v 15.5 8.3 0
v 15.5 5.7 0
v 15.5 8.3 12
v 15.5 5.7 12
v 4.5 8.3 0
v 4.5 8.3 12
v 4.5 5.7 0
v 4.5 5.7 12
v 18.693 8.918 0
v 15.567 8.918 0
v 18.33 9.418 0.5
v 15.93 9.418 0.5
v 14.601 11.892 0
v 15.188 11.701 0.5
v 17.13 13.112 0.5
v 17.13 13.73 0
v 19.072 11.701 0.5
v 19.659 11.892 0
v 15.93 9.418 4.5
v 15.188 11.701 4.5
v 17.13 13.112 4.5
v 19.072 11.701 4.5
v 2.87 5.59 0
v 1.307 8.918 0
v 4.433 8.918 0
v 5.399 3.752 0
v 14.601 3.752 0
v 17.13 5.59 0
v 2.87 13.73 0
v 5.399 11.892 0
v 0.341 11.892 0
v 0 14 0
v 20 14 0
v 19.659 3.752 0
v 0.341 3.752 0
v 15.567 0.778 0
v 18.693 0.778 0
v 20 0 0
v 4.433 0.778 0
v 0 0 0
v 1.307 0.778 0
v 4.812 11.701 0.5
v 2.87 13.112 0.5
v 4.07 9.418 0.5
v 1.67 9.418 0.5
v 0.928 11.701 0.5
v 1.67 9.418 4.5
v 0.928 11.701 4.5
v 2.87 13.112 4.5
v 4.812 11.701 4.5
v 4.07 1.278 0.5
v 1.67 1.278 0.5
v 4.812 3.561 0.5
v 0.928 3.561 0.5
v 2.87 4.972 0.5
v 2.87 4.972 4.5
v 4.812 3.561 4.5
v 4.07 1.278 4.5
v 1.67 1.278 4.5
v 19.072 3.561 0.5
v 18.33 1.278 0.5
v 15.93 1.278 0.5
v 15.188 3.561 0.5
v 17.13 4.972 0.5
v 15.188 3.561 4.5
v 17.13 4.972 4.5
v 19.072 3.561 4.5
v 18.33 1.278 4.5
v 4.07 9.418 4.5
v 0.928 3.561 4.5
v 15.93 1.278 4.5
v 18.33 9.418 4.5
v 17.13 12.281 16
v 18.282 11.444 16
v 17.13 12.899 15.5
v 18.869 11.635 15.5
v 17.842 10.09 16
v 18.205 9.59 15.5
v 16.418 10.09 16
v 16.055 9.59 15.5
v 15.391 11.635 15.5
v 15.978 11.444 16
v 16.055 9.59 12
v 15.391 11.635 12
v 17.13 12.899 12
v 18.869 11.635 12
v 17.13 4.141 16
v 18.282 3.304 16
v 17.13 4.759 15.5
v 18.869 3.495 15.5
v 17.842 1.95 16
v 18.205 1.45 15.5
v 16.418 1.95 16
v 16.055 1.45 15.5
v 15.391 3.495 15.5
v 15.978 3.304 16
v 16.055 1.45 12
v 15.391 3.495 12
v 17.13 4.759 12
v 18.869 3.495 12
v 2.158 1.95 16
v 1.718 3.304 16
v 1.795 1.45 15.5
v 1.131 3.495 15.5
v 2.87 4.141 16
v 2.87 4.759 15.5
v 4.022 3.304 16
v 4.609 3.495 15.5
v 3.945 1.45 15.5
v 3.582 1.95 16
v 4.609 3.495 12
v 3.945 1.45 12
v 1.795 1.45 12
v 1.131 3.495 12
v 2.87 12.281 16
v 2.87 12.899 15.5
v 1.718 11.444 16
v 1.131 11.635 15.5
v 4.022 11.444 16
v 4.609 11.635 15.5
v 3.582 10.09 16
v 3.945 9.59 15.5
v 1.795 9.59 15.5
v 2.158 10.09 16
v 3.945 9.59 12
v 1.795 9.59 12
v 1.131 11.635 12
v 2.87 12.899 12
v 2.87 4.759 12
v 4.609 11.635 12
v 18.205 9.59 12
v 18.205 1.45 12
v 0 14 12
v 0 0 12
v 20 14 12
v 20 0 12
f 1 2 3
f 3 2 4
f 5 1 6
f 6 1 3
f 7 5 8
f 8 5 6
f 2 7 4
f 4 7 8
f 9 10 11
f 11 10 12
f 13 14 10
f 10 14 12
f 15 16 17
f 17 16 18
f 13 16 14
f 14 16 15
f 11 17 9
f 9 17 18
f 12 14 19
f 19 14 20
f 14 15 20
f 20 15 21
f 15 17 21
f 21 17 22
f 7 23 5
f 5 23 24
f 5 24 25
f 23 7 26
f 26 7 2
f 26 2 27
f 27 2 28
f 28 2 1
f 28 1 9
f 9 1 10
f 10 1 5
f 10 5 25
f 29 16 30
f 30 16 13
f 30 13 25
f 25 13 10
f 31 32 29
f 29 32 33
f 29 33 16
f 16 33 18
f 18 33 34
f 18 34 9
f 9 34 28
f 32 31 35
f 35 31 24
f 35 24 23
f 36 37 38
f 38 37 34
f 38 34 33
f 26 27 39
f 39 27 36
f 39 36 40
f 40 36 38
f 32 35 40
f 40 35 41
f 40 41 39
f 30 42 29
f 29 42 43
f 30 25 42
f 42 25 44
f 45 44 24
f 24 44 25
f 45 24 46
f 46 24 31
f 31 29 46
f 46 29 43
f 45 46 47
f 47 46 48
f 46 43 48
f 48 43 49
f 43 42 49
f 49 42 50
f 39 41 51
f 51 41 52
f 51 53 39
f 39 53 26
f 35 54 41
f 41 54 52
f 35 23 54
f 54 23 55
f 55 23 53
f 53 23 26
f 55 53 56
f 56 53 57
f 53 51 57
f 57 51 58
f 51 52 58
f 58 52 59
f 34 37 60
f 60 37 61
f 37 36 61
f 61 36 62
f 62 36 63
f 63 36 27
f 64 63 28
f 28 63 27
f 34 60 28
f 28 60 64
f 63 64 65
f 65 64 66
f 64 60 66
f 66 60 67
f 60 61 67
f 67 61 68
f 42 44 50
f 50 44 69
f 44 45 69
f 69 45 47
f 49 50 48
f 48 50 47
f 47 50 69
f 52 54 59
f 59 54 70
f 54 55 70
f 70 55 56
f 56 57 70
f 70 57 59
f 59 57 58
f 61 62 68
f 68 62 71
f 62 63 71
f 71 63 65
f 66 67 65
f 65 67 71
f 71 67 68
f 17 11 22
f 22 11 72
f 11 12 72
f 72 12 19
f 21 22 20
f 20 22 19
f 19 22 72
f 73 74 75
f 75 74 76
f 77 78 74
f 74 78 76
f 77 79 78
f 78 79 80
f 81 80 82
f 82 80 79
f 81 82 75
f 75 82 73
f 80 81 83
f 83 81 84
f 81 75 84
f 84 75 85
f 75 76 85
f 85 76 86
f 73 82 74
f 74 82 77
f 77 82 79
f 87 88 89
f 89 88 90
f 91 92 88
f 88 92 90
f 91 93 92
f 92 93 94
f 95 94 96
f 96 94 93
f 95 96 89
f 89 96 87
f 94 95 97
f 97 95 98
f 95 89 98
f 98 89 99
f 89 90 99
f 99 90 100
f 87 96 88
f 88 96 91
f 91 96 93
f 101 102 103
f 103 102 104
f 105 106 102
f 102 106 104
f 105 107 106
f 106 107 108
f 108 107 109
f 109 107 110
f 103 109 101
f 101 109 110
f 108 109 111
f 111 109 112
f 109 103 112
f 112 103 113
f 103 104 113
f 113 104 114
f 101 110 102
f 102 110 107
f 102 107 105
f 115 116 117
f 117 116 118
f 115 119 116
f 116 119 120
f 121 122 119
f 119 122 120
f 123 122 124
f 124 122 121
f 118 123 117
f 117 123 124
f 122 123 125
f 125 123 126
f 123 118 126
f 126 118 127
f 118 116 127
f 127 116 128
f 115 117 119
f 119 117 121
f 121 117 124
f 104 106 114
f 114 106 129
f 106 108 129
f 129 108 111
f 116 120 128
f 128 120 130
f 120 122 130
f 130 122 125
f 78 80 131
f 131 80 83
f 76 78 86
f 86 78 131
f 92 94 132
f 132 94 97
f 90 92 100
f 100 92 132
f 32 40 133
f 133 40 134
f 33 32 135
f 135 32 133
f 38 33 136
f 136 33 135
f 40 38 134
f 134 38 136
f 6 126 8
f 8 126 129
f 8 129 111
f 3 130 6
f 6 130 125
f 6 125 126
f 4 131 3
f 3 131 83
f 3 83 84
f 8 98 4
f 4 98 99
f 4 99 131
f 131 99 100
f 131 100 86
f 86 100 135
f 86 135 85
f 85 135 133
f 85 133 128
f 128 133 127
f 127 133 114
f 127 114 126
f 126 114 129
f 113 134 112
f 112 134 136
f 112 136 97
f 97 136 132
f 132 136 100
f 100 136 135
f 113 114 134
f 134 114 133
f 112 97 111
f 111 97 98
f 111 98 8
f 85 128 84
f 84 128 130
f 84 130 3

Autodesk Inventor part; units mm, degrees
ref_plane "YZ Plane" through (0, 0, 0) normal (1, 0, 0) x (0, 1, 0)
ref_plane "XZ Plane" through (0, 0, 0) normal (0, 1, 0) x (-1, 0, 0)
ref_plane "XY Plane" through (0, 0, 0) normal (0, 0, 1) x (1, 0, 0)
sketch "Sketch1" plane through (0, 0, 0) normal (0, 0, 1) x (1, 0, 0)
  line L0 (0, 0) -> (20, 0)
  line L1 (20, 0) -> (20, 14)
  line L2 (20, 14) -> (0, 14)
  line L3 (0, 14) -> (0, 0)
  dimension "d0" = 20
  dimension "d1" = 14
extrude "Extrusion1" add sketch "Sketch1" along normal blind 12
sketch "Sketch2" plane through (0, 0, 12) normal (0, 0, 1) x (1, 0, 0)
  line L0 (0, 0) -> (20, 0) projected
  line L1 (20, 14) -> (0, 14) projected
  line L2 (0, 14) -> (0, 0) projected
  line L3 (4.6094, 11.6352) -> (3.945, 9.5904)
  line L4 (3.945, 9.5904) -> (1.795, 9.5904)
  line L5 (1.795, 9.5904) -> (1.1306, 11.6352)
  line L6 (1.1306, 11.6352) -> (2.87, 12.8989)
  line L7 (2.87, 12.8989) -> (4.6094, 11.6352)
  line L8 (18.8694, 11.6352) -> (18.205, 9.5904)
  line L9 (18.205, 9.5904) -> (16.055, 9.5904)
  line L10 (16.055, 9.5904) -> (15.3906, 11.6352)
  line L11 (15.3906, 11.6352) -> (17.13, 12.8989)
  line L12 (17.13, 12.8989) -> (18.8694, 11.6352)
  line L13 (4.6094, 3.4952) -> (3.945, 1.4504)
  line L14 (3.945, 1.4504) -> (1.795, 1.4504)
  line L15 (1.795, 1.4504) -> (1.1306, 3.4952)
  line L16 (1.1306, 3.4952) -> (2.87, 4.7589)
  line L17 (2.87, 4.7589) -> (4.6094, 3.4952)
  line L18 (18.8694, 3.4952) -> (18.205, 1.4504)
  line L19 (18.205, 1.4504) -> (16.055, 1.4504)
  line L20 (16.055, 1.4504) -> (15.3906, 3.4952)
  line L21 (15.3906, 3.4952) -> (17.13, 4.7589)
  line L22 (17.13, 4.7589) -> (18.8694, 3.4952)
  point P0 (2.87, 11.07)
  point P1 (17.13, 11.07)
  point P2 (2.87, 2.93)
  point P3 (17.13, 2.93)
  dimension "d14" = 2.15
  dimension "d16" = 2.15
  dimension "d17" = 2.93
  dimension "d18" = 2.87
  dimension "d20" = 2.93
  dimension "d55" = 2.15
  dimension "d56" = 2.15
extrude "Extrusion2" add sketch "Sketch2" along normal blind 4
chamfer "Chamfer1" distance 0.5 angle 45 20 edges at (4.2772, 10.6128, 16) (2.87, 9.5904, 16) (1.4628, 10.6128, 16) (2.0003, 12.267, 16) (3.7397, 12.267, 16) (3.7397, 4.127, 16) (2.0003, 4.127, 16) (1.4628, 2.4728, 16) (2.87, 1.4504, 16) (4.2772, 2.4728, 16) (17.13, 1.4504, 16) (15.7228, 2.4728, 16) (16.2603, 4.127, 16) (17.9997, 4.127, 16) (18.5372, 2.4728, 16) (17.13, 9.5904, 16) (18.5372, 10.6128, 16) (17.9997, 12.267, 16) (16.2603, 12.267, 16) (15.7228, 10.6128, 16)
sketch "Sketch3" plane through (0, 0, 0) normal (0, 0, -1) x (-1, 0, 0)
  line L0 (0, 0) -> (-20, 0) projected
  line L1 (0, 14) -> (0, 0) projected
  line L2 (-20, 14) -> (0, 14) projected
  line L3 (-20, 0) -> (-20, 14) projected
  line L4 (-4.8116, 3.5609) -> (-2.87, 4.9716)
  line L5 (-2.87, 4.9716) -> (-0.9284, 3.5609)
  line L6 (-0.9284, 3.5609) -> (-1.67, 1.2783)
  line L7 (-1.67, 1.2783) -> (-4.07, 1.2783)
  line L8 (-4.07, 1.2783) -> (-4.8116, 3.5609)
  line L9 (-19.0716, 3.5609) -> (-17.13, 4.9716)
  line L10 (-17.13, 4.9716) -> (-15.1884, 3.5609)
  line L11 (-15.1884, 3.5609) -> (-15.93, 1.2783)
  line L12 (-15.93, 1.2783) -> (-18.33, 1.2783)
  line L13 (-18.33, 1.2783) -> (-19.0716, 3.5609)
  line L14 (-2.87, 13.1116) -> (-0.9284, 11.7009)
  line L15 (-0.9284, 11.7009) -> (-1.67, 9.4183)
  line L16 (-1.67, 9.4183) -> (-4.07, 9.4183)
  line L17 (-4.07, 9.4183) -> (-4.8116, 11.7009)
  line L18 (-4.8116, 11.7009) -> (-2.87, 13.1116)
  line L19 (-17.13, 13.1116) -> (-15.1884, 11.7009)
  line L20 (-15.1884, 11.7009) -> (-15.93, 9.4183)
  line L21 (-15.93, 9.4183) -> (-18.33, 9.4183)
  line L22 (-18.33, 9.4183) -> (-19.0716, 11.7009)
  line L23 (-19.0716, 11.7009) -> (-17.13, 13.1116)
  point P0 (-2.87, 2.93)
  point P1 (-17.13, 2.93)
  point P2 (-2.87, 11.07)
  point P3 (-17.13, 11.07)
  dimension "d30" = 2.4
  dimension "d31" = 2.4
  dimension "d32" = 2.4
  dimension "d33" = 2.4
  dimension "d34" = 2.87
  dimension "d35" = 2.87
  dimension "d36" = 2.93
  dimension "d37" = 2.93
extrude "Extrusion3" cut sketch "Sketch3" against normal blind 4.5 contours L4 L5 L6 L7 L8 | L9 L10 L11 L12 L13 | L14 L15 L16 L17 L18 | L19 L20 L21 L22 L23
chamfer "Chamfer2" distance 0.5 angle 45 20 edges at (17.13, 1.2783, 0) (18.7008, 2.4196, 0) (15.5592, 2.4196, 0) (16.1592, 4.2662, 0) (18.1008, 4.2662, 0) (1.8992, 4.2662, 0) (1.2992, 2.4196, 0) (2.87, 1.2783, 0) (4.4408, 2.4196, 0) (3.8408, 4.2662, 0) (4.4408, 10.5596, 0) (2.87, 9.4183, 0) (1.2992, 10.5596, 0) (1.8992, 12.4062, 0) (3.8408, 12.4062, 0) (16.1592, 12.4062, 0) (15.5592, 10.5596, 0) (17.13, 9.4183, 0) (18.7008, 10.5596, 0) (18.1008, 12.4062, 0)
sketch "Sketch5" plane through (0, 0, 12) normal (0, 0, 1) x (1, 0, 0)
  line L0 (20, 14) -> (0, 14) projected
  line L1 (0, 14) -> (0, 0) projected
  line L2 (4.5, 8.3) -> (15.5, 8.3)
  line L3 (15.5, 8.3) -> (15.5, 5.7)
  line L4 (15.5, 5.7) -> (4.5, 5.7)
  line L5 (4.5, 5.7) -> (4.5, 8.3)
  dimension "d60" = 11
  dimension "d61" = 2.6
  dimension "d62" = 5.7
  dimension "d63" = 4.5
extrude "Extrusion5" cut sketch "Sketch5" against normal up to next
properties part number "lego"
